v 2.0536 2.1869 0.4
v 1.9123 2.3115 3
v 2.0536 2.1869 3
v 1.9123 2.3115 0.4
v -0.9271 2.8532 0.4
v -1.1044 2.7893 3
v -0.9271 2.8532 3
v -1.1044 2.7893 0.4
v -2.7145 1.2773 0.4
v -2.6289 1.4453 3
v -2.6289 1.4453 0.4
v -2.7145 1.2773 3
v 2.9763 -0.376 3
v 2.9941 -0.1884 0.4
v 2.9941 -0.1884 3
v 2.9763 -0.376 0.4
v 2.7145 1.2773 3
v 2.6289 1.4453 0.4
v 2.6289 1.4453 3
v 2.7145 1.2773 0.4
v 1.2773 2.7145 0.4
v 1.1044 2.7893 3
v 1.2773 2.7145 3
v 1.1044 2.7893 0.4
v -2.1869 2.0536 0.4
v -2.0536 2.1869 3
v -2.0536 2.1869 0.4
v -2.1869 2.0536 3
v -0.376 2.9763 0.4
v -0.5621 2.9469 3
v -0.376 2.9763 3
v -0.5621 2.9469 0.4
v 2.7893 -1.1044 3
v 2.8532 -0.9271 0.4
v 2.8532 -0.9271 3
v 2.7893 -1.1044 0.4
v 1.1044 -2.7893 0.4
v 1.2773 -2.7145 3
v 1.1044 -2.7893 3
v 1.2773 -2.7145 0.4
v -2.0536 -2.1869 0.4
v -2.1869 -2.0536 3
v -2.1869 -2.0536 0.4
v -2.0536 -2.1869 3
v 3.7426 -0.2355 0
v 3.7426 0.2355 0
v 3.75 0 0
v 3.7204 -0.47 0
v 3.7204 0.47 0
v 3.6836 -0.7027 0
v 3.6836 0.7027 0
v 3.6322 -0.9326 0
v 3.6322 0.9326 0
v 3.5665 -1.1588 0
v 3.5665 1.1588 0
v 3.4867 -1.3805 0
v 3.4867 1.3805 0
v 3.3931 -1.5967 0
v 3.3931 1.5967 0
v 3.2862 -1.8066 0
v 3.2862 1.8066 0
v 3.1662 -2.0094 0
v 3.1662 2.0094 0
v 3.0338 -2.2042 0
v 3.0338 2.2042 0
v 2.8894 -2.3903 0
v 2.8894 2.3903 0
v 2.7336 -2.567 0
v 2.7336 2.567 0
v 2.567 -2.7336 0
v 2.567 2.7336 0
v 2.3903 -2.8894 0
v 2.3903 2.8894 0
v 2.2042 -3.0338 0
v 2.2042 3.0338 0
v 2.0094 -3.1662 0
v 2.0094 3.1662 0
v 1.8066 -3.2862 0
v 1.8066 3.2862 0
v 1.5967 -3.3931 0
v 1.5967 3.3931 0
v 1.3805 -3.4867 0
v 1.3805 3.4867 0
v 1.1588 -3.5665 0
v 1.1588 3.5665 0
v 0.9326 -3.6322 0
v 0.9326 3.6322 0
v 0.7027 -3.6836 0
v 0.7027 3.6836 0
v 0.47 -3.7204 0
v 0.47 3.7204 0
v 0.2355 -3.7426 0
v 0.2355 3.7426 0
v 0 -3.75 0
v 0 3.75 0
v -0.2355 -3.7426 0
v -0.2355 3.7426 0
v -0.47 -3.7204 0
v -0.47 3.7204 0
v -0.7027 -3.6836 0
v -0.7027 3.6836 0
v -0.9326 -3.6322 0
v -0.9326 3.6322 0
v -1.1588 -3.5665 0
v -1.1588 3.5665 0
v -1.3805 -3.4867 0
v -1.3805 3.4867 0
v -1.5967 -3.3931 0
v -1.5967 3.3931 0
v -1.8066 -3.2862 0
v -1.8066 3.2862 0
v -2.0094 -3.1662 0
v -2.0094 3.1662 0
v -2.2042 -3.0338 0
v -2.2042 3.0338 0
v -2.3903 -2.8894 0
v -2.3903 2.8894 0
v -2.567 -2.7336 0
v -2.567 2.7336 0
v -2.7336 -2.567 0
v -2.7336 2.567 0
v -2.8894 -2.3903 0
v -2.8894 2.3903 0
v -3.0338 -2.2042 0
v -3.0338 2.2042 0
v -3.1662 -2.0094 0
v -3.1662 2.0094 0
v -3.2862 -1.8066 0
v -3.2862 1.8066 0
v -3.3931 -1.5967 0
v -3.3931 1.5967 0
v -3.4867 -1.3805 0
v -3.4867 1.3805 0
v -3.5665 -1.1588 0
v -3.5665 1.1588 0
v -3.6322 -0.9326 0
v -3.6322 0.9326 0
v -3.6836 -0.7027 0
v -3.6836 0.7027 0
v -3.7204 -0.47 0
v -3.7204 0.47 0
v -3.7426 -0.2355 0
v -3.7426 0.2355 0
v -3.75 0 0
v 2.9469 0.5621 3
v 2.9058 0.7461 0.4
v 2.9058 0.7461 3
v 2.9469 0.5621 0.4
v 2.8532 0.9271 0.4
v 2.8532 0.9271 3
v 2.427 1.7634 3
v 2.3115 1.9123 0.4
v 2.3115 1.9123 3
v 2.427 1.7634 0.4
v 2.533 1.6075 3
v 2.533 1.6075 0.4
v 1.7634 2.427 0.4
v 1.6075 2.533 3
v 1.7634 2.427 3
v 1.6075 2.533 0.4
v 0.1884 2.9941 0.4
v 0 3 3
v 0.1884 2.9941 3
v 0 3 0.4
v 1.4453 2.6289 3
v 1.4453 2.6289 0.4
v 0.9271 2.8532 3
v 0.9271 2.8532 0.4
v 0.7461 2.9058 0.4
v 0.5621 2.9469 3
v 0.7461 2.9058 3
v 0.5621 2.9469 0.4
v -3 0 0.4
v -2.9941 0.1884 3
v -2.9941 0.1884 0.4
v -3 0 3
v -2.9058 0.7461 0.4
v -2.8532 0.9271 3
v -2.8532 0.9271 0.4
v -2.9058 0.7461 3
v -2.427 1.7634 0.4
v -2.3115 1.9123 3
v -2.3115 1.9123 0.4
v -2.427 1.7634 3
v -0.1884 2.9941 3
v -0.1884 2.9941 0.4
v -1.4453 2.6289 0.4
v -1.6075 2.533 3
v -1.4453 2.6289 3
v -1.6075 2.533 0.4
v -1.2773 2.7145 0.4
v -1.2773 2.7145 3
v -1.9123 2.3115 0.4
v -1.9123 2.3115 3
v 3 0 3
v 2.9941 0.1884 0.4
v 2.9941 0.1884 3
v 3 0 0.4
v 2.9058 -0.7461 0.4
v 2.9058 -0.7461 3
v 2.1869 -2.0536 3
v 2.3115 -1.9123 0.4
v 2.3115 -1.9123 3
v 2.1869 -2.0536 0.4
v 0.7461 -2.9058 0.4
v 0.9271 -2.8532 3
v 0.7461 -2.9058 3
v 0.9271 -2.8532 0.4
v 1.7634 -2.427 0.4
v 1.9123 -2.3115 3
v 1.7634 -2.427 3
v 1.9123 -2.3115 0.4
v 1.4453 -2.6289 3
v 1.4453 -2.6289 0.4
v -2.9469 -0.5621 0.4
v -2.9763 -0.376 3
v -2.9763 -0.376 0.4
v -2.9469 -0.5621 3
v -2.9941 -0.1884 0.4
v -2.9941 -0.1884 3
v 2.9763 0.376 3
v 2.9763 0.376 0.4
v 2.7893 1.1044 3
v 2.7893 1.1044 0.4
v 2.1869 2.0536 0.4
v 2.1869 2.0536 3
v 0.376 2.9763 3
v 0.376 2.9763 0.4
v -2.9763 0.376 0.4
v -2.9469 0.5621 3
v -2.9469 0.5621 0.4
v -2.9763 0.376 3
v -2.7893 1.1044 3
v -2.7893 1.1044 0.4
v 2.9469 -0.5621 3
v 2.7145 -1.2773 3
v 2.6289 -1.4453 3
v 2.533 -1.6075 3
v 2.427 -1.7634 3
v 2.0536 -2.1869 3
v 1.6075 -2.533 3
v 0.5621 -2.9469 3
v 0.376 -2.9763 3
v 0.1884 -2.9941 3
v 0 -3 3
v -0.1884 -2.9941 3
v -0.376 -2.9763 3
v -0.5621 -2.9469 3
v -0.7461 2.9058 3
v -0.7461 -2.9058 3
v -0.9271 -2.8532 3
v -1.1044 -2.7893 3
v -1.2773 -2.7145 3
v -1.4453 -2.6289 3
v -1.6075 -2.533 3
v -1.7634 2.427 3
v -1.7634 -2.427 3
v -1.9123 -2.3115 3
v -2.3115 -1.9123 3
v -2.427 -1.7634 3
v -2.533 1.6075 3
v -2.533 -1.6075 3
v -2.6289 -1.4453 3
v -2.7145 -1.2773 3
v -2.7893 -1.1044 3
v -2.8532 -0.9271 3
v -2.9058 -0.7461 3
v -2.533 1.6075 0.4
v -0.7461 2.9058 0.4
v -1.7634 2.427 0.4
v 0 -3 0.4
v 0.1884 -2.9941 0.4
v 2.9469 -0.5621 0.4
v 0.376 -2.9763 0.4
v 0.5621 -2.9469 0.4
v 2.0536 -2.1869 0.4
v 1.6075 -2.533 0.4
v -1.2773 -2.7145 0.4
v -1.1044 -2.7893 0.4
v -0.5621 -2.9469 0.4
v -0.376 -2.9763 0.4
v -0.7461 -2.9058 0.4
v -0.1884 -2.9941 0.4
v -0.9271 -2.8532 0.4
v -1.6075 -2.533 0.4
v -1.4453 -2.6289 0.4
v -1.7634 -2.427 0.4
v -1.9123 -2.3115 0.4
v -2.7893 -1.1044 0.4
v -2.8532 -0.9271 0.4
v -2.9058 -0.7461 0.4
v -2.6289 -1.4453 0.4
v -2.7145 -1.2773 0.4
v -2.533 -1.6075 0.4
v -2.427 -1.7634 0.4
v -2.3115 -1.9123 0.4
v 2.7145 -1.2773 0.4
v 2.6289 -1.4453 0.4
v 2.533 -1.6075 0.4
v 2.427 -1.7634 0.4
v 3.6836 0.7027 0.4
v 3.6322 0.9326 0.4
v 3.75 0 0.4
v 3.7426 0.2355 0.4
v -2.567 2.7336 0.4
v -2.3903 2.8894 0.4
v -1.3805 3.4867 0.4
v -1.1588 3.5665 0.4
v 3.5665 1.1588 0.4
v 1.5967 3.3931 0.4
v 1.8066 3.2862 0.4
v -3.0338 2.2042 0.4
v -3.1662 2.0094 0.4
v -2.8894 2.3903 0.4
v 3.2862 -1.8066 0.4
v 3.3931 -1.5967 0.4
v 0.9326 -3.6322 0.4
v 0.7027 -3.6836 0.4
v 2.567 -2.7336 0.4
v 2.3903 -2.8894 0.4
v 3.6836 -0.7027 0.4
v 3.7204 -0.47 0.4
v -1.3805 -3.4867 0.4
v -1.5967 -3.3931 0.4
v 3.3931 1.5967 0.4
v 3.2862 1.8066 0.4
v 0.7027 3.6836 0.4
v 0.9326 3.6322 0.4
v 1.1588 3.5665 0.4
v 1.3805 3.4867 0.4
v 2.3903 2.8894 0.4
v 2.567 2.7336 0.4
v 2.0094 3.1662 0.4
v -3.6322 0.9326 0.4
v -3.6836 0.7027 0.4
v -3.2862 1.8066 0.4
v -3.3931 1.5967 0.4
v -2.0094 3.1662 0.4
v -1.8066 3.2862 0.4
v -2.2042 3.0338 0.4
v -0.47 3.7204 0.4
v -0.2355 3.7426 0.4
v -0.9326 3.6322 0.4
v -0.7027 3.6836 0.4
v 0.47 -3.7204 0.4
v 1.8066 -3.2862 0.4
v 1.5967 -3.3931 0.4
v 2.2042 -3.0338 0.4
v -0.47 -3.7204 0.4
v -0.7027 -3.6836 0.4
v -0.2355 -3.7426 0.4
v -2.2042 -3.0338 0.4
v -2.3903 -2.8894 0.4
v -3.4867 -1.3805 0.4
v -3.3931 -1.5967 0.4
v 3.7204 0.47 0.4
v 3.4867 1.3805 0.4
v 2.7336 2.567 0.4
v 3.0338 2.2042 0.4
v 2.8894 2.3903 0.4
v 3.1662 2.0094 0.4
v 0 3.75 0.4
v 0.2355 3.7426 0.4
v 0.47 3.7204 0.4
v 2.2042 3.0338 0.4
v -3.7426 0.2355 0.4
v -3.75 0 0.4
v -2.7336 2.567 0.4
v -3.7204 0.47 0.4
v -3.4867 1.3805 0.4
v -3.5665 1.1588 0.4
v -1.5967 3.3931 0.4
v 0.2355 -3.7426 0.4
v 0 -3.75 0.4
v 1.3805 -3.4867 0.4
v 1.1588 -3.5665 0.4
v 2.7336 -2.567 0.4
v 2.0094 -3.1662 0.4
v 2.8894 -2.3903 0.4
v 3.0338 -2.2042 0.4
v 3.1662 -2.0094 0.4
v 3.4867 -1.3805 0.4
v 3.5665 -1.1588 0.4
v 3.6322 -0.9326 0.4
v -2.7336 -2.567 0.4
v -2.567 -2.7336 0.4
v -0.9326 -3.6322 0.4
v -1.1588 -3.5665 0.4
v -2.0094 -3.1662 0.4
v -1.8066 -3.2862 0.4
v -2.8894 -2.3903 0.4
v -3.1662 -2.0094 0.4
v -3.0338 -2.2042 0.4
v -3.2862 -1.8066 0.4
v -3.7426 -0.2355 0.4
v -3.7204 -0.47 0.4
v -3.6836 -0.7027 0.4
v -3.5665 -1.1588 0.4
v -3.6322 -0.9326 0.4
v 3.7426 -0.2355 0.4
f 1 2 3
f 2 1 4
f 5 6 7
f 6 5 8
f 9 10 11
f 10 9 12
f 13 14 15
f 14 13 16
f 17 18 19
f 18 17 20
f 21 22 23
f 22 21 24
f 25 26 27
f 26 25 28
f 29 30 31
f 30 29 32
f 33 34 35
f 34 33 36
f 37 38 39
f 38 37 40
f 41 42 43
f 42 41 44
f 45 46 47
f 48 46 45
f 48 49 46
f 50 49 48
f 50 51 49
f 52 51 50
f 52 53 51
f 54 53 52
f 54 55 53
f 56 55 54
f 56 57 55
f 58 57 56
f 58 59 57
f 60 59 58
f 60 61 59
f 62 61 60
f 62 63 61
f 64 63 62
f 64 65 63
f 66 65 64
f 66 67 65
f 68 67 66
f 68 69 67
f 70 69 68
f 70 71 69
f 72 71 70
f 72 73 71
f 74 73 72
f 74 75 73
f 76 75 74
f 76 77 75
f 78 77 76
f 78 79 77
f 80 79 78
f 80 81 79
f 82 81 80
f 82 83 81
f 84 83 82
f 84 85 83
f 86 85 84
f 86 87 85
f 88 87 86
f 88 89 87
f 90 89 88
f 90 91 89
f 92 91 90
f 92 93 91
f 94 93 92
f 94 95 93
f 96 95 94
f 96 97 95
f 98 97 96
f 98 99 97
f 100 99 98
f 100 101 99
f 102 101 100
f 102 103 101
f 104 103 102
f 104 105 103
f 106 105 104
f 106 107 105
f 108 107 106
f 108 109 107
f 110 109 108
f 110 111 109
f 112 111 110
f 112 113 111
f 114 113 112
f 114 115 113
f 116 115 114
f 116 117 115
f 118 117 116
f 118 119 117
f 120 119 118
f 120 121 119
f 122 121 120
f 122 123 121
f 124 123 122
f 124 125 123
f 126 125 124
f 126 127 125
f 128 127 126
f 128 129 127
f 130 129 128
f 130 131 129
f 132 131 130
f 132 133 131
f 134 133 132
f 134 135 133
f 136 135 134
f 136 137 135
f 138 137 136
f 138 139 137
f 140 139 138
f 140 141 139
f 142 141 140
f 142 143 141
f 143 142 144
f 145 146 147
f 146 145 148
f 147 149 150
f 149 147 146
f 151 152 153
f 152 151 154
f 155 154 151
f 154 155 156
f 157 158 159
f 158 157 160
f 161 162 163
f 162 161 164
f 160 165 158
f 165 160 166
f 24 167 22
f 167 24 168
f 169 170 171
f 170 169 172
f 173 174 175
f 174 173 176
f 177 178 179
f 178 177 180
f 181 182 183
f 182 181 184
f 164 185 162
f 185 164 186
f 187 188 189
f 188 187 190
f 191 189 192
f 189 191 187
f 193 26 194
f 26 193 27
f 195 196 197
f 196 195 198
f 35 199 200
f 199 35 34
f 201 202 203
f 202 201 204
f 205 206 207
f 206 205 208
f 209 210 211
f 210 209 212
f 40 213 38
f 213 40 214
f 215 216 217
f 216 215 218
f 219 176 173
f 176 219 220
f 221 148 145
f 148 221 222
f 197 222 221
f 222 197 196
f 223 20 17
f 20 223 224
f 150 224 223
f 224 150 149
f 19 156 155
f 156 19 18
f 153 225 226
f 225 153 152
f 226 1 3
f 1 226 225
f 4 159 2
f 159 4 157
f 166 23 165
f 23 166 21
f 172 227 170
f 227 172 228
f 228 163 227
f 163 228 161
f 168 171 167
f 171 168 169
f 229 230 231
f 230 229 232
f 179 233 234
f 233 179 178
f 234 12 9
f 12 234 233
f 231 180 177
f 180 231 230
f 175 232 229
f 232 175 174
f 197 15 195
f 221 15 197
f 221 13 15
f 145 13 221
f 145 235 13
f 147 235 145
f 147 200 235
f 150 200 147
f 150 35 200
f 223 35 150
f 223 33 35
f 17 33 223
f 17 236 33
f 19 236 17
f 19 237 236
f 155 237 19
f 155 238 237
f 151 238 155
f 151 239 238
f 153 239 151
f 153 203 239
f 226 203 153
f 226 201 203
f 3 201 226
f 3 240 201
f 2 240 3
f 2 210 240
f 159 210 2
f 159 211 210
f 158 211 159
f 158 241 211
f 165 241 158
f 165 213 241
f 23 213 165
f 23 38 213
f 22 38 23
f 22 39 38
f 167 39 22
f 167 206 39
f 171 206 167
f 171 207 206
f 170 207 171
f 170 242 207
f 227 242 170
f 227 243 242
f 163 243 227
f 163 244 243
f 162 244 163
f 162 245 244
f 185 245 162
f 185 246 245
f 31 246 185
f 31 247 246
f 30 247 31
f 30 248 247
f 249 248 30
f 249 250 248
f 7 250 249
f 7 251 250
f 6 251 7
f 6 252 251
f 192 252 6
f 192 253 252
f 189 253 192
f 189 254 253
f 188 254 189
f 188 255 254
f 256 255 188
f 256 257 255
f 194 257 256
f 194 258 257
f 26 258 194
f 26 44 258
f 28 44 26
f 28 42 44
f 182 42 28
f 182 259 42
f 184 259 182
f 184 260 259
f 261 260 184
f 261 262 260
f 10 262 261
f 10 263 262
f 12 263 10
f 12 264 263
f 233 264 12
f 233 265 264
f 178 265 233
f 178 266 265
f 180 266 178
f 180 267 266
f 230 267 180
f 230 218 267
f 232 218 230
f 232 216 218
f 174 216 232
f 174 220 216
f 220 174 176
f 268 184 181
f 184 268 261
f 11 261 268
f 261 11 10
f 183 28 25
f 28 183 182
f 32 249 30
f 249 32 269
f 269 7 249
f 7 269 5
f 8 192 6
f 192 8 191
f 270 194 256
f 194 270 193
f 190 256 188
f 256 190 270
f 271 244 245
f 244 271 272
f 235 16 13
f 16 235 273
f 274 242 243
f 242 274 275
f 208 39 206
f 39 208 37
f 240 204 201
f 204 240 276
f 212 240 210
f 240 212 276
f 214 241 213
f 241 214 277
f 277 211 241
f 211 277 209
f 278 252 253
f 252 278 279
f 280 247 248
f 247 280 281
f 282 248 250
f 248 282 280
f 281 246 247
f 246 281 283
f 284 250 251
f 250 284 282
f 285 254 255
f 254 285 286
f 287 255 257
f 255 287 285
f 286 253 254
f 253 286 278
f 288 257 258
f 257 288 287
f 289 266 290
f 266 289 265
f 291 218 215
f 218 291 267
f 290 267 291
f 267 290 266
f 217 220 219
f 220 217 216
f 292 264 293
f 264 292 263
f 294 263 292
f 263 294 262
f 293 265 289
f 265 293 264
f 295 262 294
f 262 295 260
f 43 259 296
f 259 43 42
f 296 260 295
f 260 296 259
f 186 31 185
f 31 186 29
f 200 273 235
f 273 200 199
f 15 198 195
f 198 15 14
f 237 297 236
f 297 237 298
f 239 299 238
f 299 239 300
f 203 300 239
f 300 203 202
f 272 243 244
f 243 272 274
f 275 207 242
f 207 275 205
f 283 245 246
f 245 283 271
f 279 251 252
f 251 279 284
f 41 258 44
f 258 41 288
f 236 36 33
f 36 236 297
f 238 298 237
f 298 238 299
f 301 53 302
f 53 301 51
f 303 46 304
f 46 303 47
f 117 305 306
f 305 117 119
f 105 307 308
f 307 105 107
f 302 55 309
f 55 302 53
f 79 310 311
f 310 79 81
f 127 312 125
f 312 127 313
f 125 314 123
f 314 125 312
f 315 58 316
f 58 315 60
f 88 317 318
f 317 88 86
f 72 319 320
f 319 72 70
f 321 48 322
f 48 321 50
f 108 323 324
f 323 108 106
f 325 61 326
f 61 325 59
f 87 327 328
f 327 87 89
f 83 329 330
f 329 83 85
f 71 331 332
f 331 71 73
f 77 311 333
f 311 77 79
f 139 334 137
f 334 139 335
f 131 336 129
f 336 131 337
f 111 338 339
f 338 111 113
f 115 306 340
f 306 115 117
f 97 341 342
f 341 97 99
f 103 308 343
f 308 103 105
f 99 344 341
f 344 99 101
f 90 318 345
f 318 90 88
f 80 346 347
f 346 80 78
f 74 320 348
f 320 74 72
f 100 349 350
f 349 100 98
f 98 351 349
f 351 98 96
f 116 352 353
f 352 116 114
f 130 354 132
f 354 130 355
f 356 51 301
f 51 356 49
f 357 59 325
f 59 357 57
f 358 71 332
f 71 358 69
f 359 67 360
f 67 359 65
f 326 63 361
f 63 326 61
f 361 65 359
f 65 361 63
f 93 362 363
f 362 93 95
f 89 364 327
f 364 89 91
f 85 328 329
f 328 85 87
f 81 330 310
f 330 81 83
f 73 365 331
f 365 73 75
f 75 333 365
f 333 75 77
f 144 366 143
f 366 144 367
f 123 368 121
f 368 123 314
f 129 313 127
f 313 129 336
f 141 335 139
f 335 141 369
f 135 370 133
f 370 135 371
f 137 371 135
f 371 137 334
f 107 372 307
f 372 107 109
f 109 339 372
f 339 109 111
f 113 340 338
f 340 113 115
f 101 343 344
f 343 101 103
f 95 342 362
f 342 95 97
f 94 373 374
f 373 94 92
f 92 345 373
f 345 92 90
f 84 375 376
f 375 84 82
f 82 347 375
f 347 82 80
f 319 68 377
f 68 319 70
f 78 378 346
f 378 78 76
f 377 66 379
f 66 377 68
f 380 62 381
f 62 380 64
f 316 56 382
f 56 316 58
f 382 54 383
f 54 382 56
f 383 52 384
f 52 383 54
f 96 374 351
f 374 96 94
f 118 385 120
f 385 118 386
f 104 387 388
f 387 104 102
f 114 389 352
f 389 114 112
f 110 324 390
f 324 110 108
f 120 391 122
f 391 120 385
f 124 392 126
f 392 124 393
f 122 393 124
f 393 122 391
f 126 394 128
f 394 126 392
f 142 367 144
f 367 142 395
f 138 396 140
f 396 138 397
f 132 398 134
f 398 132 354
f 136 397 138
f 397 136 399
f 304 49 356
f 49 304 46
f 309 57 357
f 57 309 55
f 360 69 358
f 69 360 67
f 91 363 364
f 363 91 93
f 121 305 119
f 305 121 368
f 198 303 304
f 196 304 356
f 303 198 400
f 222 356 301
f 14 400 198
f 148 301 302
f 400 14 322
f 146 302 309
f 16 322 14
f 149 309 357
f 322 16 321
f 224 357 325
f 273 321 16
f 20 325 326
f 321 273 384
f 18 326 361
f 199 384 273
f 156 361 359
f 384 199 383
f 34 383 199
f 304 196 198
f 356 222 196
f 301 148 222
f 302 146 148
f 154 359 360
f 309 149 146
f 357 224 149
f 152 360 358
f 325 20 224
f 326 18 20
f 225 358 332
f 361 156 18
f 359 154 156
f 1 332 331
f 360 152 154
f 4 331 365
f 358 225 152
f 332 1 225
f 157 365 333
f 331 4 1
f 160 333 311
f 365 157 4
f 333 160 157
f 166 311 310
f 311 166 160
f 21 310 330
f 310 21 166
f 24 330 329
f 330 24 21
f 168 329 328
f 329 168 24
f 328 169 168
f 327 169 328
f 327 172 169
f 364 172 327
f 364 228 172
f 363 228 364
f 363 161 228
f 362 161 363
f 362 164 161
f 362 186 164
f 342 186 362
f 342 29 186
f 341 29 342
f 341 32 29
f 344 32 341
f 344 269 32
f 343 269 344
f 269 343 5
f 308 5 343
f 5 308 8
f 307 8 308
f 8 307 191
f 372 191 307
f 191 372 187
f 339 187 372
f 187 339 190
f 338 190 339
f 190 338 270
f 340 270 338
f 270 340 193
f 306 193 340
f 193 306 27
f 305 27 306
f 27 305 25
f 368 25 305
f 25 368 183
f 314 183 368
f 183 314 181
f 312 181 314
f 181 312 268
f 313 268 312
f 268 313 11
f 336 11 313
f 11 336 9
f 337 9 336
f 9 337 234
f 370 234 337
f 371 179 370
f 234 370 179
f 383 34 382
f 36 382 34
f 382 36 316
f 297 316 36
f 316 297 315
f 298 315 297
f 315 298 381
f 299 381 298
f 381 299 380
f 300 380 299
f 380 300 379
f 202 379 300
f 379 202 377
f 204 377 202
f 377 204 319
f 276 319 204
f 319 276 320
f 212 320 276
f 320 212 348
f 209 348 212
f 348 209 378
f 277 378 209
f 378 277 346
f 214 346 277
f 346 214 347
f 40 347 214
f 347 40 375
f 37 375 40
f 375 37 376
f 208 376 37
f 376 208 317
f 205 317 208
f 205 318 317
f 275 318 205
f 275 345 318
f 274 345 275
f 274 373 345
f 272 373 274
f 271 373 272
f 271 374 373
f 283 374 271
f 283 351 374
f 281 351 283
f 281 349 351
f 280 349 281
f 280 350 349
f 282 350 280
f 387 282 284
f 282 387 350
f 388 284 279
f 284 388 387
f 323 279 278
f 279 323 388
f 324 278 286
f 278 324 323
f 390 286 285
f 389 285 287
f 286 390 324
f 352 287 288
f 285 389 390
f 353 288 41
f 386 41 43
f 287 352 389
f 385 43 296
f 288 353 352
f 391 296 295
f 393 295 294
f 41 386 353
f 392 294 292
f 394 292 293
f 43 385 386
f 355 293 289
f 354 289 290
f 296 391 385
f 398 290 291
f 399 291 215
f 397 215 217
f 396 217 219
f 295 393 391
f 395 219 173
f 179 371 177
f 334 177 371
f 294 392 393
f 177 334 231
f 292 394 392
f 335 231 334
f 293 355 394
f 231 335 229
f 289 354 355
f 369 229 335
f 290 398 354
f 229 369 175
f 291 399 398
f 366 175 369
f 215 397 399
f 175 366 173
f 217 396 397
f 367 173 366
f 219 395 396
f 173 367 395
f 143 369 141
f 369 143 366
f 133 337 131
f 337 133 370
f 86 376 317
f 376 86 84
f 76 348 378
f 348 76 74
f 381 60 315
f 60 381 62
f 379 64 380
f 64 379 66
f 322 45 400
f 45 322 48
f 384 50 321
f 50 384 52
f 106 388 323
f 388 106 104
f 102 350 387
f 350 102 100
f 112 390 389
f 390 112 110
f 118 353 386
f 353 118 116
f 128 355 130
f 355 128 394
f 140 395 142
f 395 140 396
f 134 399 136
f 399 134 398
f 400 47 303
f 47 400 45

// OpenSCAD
//  The Cave, 2017
//  https://thecave.cz
//
//  Licensed under MIT License (see LICENSE file for details)
//

$buttonDia = 6;
$buttonRimDia = 7.5;
$buttonRimHeight = 0.4;
$buttonHeight = 3;

cylinder(d=$buttonDia,h=$buttonHeight,$fn=100);
cylinder(d=$buttonRimDia,h=$buttonRimHeight,$fn=100);
